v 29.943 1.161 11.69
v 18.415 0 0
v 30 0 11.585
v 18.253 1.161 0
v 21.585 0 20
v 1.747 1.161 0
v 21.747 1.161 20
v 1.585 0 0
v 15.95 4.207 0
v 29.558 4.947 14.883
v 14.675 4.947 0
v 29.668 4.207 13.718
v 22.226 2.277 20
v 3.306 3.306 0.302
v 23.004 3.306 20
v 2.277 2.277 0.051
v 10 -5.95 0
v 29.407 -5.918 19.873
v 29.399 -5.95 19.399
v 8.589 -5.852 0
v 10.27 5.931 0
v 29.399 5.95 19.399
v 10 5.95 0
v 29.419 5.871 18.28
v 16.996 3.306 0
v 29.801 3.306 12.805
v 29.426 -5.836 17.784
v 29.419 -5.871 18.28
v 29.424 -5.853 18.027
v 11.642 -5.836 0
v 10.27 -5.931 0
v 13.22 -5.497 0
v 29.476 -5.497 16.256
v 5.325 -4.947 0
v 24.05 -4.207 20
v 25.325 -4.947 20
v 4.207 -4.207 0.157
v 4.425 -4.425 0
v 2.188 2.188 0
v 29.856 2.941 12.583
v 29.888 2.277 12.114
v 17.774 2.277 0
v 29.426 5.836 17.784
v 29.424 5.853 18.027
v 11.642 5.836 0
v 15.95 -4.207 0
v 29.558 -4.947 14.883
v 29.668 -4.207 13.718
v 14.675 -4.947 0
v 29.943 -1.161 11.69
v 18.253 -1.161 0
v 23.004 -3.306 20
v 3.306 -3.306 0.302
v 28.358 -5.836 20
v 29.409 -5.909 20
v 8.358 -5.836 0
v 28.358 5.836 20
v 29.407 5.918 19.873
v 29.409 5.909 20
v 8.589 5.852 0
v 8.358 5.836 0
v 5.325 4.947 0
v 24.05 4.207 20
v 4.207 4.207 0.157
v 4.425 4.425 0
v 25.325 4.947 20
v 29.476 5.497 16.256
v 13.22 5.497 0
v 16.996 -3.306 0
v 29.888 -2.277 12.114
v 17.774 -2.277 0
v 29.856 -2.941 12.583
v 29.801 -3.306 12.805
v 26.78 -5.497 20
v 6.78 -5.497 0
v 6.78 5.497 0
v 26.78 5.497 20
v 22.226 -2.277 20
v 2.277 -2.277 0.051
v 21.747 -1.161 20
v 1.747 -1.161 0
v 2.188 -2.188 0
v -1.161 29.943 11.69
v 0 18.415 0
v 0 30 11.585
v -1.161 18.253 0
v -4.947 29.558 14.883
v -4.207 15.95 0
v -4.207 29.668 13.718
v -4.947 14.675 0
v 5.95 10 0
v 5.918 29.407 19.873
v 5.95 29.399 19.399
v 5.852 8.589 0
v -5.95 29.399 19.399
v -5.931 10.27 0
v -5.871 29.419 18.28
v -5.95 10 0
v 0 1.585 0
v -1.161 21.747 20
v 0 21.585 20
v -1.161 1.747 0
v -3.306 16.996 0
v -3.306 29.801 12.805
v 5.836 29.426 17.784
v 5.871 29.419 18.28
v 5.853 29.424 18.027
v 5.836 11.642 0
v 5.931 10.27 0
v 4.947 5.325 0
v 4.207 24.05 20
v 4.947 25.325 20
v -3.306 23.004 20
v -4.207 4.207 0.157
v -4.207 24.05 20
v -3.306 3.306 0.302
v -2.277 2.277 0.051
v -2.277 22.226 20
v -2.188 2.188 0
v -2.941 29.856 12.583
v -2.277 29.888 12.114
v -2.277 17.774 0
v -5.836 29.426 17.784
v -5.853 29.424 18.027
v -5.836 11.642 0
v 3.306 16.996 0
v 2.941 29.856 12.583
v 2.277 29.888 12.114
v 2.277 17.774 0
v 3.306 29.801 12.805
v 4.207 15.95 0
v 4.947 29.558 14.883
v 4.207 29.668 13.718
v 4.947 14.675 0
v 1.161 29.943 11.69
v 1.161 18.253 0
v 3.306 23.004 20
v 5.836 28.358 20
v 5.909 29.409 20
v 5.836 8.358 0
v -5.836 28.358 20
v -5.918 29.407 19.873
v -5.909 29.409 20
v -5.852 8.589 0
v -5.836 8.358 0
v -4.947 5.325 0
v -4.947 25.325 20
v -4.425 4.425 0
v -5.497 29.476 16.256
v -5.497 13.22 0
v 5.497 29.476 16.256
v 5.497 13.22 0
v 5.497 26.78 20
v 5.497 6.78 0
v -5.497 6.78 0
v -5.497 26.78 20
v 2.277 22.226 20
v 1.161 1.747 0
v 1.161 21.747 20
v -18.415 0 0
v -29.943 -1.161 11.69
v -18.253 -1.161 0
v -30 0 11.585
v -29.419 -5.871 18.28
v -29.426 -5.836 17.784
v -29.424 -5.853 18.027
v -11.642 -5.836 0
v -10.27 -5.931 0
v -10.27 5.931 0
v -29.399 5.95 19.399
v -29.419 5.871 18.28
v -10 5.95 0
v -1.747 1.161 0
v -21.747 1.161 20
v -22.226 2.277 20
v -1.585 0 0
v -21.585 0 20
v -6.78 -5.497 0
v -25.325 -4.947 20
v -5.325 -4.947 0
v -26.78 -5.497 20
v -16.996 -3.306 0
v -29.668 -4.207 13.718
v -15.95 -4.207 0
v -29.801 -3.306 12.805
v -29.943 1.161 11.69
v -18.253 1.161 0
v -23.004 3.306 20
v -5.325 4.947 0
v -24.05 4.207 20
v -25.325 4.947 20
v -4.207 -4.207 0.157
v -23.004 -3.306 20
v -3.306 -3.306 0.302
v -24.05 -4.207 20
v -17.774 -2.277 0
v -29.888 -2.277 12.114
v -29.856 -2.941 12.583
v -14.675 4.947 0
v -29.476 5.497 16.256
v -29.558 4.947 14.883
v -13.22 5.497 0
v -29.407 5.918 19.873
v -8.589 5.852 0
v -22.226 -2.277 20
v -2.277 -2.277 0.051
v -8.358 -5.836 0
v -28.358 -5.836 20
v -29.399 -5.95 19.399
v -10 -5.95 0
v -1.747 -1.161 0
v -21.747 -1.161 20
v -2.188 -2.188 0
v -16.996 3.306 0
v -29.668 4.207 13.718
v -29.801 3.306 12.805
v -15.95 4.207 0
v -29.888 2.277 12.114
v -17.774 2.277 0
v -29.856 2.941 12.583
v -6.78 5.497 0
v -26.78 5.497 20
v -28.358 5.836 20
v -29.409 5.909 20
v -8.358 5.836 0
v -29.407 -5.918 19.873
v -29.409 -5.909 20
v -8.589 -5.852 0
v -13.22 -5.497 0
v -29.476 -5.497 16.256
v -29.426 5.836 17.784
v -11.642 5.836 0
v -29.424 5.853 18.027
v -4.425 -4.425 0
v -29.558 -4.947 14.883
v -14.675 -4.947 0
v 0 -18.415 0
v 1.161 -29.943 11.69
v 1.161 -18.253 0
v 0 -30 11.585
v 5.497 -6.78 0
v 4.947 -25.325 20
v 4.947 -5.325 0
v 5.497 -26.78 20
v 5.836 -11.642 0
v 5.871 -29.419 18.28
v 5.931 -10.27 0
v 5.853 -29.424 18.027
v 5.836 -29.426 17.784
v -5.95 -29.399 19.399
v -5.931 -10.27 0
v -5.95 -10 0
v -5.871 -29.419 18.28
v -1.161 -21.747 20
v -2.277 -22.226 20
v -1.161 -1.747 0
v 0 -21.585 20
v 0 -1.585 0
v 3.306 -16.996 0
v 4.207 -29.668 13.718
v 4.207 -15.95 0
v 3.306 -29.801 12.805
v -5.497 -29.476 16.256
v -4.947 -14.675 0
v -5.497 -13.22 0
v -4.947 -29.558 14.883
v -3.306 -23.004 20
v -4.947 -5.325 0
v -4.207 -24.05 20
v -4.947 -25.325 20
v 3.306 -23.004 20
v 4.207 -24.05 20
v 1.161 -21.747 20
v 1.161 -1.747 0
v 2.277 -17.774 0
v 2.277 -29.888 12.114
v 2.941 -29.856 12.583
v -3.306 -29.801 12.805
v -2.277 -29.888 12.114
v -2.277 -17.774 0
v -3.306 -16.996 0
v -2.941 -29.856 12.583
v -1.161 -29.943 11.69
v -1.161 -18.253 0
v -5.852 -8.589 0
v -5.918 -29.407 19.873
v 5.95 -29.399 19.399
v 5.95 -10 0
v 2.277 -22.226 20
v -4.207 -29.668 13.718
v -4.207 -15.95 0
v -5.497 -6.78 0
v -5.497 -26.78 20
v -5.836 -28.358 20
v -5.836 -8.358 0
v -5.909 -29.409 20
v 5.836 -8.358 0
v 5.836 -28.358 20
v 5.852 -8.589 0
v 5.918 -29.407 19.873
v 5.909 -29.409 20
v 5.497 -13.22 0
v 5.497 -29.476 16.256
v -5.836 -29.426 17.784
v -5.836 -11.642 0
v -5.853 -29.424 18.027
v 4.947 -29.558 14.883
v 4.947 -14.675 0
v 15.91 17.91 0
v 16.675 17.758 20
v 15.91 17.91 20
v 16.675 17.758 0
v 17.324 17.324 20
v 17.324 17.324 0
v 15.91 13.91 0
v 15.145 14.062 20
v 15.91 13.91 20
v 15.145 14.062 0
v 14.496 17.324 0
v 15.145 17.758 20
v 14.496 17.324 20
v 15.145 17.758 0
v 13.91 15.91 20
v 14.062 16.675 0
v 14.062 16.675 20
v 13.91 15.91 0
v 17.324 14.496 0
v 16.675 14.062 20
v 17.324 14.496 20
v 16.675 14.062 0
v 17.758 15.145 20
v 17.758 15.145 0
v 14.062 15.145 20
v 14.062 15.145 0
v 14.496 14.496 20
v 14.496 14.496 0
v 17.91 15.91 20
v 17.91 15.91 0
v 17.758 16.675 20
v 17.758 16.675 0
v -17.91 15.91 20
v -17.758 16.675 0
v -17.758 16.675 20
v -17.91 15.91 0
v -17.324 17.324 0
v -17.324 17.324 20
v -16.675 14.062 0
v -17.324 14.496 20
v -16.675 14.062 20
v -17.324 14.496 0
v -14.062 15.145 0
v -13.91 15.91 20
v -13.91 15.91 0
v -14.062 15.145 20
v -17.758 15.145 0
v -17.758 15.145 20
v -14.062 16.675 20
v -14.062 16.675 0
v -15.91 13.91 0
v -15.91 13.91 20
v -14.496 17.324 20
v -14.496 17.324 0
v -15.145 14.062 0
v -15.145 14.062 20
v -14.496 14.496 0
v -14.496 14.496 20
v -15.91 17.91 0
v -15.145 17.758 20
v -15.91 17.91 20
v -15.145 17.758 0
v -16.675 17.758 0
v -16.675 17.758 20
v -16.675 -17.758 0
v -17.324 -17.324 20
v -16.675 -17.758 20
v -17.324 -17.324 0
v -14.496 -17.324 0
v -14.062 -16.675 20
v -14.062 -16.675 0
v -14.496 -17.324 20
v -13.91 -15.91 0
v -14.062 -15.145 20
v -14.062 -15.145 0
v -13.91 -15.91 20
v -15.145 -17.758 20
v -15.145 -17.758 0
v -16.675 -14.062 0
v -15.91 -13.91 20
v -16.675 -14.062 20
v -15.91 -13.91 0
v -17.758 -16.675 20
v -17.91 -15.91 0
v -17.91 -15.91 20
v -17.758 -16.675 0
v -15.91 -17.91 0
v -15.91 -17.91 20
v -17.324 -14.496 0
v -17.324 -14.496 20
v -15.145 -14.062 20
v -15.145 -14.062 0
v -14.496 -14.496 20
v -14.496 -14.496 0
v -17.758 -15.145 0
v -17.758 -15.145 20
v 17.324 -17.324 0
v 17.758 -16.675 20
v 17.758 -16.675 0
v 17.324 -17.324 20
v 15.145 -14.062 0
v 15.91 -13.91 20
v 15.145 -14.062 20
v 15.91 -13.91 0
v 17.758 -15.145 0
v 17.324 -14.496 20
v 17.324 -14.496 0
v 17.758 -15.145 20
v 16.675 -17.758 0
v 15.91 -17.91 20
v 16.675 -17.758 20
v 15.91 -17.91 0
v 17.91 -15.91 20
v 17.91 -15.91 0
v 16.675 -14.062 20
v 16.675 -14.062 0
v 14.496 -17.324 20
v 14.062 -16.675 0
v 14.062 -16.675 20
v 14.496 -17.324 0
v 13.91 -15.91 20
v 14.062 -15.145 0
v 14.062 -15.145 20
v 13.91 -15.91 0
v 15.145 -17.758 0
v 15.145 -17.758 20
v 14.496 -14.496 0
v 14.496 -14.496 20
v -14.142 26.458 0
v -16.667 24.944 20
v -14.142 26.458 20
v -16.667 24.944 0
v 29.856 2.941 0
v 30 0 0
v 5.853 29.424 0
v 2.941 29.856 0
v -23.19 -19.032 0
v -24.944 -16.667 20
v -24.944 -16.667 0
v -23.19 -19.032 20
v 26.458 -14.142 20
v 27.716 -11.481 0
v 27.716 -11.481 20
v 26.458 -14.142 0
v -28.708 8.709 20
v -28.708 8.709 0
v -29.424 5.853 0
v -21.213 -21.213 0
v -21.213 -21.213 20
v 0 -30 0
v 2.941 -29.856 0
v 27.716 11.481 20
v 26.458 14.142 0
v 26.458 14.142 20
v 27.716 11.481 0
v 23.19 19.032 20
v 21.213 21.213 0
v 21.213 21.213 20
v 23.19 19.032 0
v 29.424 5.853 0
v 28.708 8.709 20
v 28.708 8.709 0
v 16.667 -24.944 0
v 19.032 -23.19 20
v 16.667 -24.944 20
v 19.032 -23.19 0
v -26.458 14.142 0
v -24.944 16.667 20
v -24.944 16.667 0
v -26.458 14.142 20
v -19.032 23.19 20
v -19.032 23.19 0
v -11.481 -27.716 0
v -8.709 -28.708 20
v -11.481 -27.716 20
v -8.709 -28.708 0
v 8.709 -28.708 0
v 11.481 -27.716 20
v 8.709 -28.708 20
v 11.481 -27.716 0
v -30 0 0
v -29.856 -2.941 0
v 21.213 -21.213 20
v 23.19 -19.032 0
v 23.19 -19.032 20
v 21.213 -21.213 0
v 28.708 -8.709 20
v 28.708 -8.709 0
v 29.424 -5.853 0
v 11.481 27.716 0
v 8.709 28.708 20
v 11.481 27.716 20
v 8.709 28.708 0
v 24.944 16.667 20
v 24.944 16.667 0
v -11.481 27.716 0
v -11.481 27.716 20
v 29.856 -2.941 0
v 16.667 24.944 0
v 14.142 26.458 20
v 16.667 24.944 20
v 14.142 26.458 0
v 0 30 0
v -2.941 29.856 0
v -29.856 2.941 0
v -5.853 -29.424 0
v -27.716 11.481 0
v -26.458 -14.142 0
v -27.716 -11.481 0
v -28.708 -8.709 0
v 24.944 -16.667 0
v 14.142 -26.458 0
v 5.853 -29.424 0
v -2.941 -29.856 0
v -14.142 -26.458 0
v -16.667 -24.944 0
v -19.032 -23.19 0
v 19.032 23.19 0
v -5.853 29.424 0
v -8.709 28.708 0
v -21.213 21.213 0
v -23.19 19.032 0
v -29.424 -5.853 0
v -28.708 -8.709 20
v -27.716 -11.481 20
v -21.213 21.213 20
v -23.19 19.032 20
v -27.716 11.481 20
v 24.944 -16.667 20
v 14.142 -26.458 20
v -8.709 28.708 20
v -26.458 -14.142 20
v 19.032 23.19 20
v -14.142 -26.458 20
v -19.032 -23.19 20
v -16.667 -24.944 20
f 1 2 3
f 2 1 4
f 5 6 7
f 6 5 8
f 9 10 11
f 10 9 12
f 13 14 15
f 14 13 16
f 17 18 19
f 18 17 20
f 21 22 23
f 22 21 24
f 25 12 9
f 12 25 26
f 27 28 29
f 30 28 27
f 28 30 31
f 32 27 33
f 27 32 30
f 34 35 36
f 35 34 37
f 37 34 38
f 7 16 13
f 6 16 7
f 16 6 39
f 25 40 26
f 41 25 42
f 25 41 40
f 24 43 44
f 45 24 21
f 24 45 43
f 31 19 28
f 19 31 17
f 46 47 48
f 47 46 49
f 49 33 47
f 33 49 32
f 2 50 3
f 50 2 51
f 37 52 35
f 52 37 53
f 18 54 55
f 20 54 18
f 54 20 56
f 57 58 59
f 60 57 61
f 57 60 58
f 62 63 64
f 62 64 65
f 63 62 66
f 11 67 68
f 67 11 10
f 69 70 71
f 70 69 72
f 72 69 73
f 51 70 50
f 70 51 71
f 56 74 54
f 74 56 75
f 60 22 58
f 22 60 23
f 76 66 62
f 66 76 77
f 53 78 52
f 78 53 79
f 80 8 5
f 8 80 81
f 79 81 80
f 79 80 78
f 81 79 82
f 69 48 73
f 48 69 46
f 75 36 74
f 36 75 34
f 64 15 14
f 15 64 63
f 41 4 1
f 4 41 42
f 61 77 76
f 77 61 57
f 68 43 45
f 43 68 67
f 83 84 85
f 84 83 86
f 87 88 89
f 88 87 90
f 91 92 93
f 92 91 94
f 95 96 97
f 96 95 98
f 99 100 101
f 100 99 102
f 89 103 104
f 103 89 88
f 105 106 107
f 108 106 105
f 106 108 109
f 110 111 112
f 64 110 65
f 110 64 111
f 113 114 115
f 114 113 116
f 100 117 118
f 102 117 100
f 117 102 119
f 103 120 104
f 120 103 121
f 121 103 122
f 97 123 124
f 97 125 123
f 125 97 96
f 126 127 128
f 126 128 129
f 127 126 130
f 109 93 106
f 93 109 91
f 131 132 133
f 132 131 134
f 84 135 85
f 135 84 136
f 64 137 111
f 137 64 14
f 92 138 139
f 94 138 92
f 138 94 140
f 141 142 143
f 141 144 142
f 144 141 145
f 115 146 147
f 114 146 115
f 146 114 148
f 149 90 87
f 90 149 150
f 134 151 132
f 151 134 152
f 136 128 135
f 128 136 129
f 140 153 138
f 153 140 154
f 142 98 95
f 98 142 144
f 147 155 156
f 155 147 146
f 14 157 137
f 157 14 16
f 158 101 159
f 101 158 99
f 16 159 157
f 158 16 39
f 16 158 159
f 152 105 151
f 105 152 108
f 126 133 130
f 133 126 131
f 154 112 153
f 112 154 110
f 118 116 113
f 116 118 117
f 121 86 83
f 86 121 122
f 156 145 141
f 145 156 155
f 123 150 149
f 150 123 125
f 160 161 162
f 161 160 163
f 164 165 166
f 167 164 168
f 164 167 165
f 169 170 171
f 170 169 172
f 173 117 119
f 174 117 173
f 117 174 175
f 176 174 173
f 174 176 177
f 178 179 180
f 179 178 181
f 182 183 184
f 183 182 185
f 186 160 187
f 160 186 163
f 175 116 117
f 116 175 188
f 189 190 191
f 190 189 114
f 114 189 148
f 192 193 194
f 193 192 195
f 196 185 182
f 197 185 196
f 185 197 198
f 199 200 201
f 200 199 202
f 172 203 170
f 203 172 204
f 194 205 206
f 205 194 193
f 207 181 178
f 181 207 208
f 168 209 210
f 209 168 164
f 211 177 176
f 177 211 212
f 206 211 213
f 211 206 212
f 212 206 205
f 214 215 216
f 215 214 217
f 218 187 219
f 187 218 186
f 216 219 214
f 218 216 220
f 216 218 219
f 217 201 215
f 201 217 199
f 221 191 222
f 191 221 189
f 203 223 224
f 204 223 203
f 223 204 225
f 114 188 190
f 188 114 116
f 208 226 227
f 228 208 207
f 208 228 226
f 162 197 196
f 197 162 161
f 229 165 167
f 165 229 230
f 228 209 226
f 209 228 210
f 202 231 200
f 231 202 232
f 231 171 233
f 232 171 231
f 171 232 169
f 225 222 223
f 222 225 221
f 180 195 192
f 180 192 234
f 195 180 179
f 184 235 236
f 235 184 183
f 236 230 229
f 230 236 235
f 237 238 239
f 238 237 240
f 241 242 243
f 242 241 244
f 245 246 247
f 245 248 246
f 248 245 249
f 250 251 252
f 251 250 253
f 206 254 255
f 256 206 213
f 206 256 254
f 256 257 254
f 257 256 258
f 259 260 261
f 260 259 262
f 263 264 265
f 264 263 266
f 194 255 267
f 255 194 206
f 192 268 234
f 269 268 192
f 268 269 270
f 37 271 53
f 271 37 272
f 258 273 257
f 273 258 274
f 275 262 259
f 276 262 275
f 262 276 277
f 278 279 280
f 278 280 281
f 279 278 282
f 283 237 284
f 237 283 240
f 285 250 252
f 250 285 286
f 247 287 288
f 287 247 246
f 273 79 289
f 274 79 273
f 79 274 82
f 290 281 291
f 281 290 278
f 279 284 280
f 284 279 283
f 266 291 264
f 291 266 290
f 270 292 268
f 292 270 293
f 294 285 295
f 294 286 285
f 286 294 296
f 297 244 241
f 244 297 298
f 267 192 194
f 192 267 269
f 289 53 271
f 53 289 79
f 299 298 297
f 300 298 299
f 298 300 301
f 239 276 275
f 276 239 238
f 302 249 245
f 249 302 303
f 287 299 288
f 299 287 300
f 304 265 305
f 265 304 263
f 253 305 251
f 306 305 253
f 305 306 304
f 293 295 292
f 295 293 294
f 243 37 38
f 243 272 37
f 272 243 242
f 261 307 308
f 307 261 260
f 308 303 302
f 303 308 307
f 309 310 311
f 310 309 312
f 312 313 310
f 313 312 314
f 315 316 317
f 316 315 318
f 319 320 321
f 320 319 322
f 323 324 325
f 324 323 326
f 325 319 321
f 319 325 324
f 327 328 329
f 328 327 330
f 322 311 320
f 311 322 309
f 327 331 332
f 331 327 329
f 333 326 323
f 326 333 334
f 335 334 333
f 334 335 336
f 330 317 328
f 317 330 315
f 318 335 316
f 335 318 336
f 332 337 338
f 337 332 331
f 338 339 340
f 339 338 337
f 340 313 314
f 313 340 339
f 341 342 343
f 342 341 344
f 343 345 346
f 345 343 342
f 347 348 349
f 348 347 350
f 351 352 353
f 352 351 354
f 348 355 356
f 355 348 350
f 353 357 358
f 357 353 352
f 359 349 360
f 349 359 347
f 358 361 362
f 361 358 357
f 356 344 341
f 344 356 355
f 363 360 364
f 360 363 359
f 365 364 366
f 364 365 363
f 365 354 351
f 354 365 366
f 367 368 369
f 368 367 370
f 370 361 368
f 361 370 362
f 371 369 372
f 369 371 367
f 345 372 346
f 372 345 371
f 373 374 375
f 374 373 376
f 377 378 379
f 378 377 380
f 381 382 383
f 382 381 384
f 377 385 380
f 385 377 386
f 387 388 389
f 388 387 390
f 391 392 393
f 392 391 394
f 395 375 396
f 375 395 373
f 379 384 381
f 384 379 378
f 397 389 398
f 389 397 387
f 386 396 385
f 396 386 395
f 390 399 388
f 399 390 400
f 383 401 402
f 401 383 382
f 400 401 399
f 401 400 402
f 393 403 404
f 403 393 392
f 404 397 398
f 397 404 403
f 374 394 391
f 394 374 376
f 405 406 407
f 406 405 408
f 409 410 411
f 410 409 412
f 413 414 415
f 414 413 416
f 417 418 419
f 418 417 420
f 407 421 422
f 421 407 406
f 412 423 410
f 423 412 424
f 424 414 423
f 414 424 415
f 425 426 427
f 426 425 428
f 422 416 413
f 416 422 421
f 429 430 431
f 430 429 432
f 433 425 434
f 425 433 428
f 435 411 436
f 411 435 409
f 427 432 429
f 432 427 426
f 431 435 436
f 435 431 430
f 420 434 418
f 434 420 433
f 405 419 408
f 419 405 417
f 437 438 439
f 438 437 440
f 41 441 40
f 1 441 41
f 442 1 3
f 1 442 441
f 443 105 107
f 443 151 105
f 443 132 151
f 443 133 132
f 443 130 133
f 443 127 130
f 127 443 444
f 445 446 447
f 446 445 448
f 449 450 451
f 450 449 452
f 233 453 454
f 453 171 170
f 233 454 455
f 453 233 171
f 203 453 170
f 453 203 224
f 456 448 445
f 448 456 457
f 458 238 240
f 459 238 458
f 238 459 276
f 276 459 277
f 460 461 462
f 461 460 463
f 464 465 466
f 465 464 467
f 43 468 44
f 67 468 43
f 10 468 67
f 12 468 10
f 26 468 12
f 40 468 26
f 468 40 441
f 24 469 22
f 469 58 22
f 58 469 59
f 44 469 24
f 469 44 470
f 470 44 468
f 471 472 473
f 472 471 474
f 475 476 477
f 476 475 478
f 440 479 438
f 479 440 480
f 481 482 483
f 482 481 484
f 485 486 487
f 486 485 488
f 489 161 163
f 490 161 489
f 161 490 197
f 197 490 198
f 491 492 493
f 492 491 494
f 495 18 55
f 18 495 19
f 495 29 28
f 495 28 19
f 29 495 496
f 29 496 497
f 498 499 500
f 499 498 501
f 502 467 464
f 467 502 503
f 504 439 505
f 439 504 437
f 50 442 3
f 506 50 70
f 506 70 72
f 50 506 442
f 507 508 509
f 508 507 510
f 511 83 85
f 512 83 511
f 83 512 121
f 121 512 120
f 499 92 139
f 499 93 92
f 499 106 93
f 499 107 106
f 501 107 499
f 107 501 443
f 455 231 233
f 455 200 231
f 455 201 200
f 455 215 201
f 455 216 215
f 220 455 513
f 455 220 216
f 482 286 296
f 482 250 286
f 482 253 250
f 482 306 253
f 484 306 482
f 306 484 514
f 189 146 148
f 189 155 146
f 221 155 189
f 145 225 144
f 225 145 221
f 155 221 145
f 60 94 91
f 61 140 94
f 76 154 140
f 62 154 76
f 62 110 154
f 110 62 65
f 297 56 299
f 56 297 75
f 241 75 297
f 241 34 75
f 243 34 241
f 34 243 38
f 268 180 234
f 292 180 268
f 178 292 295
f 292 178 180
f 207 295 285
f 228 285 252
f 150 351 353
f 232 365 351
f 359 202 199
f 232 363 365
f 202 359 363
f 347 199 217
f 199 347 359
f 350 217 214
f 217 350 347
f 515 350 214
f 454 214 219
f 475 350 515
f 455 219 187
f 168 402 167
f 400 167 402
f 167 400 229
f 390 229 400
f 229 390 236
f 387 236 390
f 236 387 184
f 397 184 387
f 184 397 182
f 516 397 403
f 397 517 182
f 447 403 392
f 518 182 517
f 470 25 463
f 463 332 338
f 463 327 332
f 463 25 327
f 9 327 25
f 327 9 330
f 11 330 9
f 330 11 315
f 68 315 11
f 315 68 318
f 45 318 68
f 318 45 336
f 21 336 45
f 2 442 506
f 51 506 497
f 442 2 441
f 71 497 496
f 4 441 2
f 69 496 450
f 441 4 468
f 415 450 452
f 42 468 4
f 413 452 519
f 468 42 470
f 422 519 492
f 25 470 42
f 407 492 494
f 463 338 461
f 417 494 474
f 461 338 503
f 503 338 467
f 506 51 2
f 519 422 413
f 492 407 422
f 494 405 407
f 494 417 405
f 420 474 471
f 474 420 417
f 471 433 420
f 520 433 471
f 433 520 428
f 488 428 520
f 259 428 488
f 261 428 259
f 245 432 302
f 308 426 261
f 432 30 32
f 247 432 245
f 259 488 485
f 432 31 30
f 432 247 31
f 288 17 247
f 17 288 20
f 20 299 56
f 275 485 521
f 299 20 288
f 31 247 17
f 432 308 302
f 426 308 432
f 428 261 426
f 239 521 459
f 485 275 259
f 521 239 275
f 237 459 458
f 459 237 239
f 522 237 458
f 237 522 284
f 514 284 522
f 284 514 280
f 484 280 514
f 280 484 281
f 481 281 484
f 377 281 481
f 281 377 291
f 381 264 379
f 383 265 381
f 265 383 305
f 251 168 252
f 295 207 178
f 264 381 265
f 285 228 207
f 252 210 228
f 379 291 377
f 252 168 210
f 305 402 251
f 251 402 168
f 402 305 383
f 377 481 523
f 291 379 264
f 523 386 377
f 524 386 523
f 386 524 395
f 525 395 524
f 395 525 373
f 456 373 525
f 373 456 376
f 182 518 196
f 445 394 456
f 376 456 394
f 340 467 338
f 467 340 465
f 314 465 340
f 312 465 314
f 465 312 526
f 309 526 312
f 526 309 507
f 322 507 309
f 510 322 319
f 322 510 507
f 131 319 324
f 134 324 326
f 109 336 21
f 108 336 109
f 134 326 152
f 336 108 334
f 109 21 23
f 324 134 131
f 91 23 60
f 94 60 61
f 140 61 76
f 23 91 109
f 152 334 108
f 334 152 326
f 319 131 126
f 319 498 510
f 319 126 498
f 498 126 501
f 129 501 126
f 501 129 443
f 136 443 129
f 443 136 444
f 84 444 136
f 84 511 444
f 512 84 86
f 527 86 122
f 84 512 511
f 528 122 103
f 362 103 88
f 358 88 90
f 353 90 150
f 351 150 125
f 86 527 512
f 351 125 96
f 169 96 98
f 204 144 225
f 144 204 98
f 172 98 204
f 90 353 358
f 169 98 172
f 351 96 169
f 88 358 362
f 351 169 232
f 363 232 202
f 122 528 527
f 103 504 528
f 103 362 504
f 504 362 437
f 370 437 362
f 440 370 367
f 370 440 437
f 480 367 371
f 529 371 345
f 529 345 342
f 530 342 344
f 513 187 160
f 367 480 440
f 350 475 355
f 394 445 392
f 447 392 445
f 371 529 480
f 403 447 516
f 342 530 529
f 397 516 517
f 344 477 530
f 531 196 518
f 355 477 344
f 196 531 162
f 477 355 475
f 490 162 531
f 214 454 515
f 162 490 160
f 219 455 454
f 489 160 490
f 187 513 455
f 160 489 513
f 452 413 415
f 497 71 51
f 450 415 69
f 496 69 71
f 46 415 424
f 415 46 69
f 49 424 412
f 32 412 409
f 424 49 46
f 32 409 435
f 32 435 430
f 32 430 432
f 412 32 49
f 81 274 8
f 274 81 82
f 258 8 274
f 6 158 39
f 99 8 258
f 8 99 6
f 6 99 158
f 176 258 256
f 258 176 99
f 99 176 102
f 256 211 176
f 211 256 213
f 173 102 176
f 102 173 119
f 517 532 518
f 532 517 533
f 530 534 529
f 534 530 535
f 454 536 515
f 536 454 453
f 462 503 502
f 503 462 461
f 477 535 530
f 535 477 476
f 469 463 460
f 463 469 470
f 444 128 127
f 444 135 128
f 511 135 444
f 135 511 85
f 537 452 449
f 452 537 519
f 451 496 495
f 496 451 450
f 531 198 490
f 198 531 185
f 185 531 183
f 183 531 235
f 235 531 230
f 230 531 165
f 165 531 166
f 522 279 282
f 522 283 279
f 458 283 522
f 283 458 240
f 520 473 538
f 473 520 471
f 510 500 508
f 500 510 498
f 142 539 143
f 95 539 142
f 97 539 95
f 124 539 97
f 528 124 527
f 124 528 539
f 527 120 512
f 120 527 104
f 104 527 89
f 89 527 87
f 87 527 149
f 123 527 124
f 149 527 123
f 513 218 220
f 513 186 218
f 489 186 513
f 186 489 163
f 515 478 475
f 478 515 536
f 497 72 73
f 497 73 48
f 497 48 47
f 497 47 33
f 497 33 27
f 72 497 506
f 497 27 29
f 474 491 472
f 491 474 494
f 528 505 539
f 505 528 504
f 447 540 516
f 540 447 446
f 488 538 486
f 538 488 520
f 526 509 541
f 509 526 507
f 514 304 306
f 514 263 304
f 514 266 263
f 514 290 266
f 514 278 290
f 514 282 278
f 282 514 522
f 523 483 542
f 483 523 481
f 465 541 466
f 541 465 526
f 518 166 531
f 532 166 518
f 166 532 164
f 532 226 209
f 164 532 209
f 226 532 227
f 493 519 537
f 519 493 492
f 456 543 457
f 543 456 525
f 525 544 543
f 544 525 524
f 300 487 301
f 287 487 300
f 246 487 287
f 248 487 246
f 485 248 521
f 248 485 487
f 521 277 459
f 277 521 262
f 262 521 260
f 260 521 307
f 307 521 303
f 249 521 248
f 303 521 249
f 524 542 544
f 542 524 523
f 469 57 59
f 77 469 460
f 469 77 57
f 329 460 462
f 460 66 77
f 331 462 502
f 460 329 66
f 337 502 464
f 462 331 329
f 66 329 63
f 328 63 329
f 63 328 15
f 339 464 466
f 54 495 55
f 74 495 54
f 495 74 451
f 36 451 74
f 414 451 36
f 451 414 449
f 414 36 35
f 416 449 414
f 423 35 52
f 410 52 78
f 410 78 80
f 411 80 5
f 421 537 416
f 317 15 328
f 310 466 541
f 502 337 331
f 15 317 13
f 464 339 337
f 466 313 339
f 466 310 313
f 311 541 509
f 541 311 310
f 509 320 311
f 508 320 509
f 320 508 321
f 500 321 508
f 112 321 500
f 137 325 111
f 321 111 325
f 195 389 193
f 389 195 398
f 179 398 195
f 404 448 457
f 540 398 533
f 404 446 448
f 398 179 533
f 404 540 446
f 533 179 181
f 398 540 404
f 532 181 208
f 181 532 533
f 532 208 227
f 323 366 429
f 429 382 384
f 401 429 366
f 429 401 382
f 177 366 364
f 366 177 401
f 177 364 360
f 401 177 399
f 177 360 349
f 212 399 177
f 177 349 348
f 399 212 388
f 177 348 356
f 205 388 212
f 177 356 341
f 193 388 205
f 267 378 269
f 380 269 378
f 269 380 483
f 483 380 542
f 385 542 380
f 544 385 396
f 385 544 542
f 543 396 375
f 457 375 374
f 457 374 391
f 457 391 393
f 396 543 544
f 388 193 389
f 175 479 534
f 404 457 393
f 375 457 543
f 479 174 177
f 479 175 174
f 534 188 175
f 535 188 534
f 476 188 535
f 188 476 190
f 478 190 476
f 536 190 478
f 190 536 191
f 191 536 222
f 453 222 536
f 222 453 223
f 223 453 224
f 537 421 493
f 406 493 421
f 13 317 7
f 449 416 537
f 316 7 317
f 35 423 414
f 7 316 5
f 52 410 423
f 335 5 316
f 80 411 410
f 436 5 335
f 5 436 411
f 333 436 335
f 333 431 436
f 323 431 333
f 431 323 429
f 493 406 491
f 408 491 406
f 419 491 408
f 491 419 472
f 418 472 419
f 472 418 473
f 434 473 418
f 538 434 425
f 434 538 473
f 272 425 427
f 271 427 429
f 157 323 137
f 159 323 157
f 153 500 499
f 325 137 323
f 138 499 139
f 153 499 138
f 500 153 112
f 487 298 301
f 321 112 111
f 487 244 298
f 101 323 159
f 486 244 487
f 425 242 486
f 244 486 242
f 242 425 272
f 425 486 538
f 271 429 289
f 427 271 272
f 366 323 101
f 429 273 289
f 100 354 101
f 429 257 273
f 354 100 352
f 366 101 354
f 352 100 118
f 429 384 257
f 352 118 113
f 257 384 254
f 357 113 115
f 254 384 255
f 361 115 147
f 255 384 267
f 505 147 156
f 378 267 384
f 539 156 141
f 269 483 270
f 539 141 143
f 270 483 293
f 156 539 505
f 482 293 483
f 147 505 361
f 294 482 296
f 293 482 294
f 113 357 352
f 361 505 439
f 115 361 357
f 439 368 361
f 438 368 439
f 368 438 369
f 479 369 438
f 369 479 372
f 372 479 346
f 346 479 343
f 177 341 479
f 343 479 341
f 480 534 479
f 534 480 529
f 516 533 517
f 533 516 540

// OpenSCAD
// Clean 3D Printable BOTTOM Hub for LoRa Ground Plane Antenna
// Mounts to bottom of project box - radials only
// Simple geometry - just radial holes and mounting

// Parameters
rod_diameter = 11.1;        // 7/16" fiberglass rod
tolerance = 0.8;            // Print tolerance
hole_diameter = rod_diameter + tolerance;  // 11.9mm

hub_diameter = 60;
hub_height = 20;
radial_distance = 22;       // Distance from center
mount_diameter = 4.0;
mount_circle = 45;

// Bottom hub - radials only
difference() {
    // Solid hub cylinder
    cylinder(h=hub_height, d=hub_diameter, $fn=64);
    
    // Four angled radial holes
    for(i = [0:3]) {
        rotate([0, 0, i * 90]) {
            translate([radial_distance, 0, hub_height * 0.6]) {
                rotate([0, 45, 0]) {
                    translate([0, 0, -25])
                        cylinder(h=50, d=hole_diameter, $fn=32);
                }
            }
        }
    }
    
    // Mounting holes
    for(i = [0:3]) {
        rotate([0, 0, i * 90 + 45]) {
            translate([mount_circle/2, 0, -1])
                cylinder(h=hub_height + 2, d=mount_diameter, $fn=16);
        }
    }
}

// Clean bottom hub - just radials and mounting holes
